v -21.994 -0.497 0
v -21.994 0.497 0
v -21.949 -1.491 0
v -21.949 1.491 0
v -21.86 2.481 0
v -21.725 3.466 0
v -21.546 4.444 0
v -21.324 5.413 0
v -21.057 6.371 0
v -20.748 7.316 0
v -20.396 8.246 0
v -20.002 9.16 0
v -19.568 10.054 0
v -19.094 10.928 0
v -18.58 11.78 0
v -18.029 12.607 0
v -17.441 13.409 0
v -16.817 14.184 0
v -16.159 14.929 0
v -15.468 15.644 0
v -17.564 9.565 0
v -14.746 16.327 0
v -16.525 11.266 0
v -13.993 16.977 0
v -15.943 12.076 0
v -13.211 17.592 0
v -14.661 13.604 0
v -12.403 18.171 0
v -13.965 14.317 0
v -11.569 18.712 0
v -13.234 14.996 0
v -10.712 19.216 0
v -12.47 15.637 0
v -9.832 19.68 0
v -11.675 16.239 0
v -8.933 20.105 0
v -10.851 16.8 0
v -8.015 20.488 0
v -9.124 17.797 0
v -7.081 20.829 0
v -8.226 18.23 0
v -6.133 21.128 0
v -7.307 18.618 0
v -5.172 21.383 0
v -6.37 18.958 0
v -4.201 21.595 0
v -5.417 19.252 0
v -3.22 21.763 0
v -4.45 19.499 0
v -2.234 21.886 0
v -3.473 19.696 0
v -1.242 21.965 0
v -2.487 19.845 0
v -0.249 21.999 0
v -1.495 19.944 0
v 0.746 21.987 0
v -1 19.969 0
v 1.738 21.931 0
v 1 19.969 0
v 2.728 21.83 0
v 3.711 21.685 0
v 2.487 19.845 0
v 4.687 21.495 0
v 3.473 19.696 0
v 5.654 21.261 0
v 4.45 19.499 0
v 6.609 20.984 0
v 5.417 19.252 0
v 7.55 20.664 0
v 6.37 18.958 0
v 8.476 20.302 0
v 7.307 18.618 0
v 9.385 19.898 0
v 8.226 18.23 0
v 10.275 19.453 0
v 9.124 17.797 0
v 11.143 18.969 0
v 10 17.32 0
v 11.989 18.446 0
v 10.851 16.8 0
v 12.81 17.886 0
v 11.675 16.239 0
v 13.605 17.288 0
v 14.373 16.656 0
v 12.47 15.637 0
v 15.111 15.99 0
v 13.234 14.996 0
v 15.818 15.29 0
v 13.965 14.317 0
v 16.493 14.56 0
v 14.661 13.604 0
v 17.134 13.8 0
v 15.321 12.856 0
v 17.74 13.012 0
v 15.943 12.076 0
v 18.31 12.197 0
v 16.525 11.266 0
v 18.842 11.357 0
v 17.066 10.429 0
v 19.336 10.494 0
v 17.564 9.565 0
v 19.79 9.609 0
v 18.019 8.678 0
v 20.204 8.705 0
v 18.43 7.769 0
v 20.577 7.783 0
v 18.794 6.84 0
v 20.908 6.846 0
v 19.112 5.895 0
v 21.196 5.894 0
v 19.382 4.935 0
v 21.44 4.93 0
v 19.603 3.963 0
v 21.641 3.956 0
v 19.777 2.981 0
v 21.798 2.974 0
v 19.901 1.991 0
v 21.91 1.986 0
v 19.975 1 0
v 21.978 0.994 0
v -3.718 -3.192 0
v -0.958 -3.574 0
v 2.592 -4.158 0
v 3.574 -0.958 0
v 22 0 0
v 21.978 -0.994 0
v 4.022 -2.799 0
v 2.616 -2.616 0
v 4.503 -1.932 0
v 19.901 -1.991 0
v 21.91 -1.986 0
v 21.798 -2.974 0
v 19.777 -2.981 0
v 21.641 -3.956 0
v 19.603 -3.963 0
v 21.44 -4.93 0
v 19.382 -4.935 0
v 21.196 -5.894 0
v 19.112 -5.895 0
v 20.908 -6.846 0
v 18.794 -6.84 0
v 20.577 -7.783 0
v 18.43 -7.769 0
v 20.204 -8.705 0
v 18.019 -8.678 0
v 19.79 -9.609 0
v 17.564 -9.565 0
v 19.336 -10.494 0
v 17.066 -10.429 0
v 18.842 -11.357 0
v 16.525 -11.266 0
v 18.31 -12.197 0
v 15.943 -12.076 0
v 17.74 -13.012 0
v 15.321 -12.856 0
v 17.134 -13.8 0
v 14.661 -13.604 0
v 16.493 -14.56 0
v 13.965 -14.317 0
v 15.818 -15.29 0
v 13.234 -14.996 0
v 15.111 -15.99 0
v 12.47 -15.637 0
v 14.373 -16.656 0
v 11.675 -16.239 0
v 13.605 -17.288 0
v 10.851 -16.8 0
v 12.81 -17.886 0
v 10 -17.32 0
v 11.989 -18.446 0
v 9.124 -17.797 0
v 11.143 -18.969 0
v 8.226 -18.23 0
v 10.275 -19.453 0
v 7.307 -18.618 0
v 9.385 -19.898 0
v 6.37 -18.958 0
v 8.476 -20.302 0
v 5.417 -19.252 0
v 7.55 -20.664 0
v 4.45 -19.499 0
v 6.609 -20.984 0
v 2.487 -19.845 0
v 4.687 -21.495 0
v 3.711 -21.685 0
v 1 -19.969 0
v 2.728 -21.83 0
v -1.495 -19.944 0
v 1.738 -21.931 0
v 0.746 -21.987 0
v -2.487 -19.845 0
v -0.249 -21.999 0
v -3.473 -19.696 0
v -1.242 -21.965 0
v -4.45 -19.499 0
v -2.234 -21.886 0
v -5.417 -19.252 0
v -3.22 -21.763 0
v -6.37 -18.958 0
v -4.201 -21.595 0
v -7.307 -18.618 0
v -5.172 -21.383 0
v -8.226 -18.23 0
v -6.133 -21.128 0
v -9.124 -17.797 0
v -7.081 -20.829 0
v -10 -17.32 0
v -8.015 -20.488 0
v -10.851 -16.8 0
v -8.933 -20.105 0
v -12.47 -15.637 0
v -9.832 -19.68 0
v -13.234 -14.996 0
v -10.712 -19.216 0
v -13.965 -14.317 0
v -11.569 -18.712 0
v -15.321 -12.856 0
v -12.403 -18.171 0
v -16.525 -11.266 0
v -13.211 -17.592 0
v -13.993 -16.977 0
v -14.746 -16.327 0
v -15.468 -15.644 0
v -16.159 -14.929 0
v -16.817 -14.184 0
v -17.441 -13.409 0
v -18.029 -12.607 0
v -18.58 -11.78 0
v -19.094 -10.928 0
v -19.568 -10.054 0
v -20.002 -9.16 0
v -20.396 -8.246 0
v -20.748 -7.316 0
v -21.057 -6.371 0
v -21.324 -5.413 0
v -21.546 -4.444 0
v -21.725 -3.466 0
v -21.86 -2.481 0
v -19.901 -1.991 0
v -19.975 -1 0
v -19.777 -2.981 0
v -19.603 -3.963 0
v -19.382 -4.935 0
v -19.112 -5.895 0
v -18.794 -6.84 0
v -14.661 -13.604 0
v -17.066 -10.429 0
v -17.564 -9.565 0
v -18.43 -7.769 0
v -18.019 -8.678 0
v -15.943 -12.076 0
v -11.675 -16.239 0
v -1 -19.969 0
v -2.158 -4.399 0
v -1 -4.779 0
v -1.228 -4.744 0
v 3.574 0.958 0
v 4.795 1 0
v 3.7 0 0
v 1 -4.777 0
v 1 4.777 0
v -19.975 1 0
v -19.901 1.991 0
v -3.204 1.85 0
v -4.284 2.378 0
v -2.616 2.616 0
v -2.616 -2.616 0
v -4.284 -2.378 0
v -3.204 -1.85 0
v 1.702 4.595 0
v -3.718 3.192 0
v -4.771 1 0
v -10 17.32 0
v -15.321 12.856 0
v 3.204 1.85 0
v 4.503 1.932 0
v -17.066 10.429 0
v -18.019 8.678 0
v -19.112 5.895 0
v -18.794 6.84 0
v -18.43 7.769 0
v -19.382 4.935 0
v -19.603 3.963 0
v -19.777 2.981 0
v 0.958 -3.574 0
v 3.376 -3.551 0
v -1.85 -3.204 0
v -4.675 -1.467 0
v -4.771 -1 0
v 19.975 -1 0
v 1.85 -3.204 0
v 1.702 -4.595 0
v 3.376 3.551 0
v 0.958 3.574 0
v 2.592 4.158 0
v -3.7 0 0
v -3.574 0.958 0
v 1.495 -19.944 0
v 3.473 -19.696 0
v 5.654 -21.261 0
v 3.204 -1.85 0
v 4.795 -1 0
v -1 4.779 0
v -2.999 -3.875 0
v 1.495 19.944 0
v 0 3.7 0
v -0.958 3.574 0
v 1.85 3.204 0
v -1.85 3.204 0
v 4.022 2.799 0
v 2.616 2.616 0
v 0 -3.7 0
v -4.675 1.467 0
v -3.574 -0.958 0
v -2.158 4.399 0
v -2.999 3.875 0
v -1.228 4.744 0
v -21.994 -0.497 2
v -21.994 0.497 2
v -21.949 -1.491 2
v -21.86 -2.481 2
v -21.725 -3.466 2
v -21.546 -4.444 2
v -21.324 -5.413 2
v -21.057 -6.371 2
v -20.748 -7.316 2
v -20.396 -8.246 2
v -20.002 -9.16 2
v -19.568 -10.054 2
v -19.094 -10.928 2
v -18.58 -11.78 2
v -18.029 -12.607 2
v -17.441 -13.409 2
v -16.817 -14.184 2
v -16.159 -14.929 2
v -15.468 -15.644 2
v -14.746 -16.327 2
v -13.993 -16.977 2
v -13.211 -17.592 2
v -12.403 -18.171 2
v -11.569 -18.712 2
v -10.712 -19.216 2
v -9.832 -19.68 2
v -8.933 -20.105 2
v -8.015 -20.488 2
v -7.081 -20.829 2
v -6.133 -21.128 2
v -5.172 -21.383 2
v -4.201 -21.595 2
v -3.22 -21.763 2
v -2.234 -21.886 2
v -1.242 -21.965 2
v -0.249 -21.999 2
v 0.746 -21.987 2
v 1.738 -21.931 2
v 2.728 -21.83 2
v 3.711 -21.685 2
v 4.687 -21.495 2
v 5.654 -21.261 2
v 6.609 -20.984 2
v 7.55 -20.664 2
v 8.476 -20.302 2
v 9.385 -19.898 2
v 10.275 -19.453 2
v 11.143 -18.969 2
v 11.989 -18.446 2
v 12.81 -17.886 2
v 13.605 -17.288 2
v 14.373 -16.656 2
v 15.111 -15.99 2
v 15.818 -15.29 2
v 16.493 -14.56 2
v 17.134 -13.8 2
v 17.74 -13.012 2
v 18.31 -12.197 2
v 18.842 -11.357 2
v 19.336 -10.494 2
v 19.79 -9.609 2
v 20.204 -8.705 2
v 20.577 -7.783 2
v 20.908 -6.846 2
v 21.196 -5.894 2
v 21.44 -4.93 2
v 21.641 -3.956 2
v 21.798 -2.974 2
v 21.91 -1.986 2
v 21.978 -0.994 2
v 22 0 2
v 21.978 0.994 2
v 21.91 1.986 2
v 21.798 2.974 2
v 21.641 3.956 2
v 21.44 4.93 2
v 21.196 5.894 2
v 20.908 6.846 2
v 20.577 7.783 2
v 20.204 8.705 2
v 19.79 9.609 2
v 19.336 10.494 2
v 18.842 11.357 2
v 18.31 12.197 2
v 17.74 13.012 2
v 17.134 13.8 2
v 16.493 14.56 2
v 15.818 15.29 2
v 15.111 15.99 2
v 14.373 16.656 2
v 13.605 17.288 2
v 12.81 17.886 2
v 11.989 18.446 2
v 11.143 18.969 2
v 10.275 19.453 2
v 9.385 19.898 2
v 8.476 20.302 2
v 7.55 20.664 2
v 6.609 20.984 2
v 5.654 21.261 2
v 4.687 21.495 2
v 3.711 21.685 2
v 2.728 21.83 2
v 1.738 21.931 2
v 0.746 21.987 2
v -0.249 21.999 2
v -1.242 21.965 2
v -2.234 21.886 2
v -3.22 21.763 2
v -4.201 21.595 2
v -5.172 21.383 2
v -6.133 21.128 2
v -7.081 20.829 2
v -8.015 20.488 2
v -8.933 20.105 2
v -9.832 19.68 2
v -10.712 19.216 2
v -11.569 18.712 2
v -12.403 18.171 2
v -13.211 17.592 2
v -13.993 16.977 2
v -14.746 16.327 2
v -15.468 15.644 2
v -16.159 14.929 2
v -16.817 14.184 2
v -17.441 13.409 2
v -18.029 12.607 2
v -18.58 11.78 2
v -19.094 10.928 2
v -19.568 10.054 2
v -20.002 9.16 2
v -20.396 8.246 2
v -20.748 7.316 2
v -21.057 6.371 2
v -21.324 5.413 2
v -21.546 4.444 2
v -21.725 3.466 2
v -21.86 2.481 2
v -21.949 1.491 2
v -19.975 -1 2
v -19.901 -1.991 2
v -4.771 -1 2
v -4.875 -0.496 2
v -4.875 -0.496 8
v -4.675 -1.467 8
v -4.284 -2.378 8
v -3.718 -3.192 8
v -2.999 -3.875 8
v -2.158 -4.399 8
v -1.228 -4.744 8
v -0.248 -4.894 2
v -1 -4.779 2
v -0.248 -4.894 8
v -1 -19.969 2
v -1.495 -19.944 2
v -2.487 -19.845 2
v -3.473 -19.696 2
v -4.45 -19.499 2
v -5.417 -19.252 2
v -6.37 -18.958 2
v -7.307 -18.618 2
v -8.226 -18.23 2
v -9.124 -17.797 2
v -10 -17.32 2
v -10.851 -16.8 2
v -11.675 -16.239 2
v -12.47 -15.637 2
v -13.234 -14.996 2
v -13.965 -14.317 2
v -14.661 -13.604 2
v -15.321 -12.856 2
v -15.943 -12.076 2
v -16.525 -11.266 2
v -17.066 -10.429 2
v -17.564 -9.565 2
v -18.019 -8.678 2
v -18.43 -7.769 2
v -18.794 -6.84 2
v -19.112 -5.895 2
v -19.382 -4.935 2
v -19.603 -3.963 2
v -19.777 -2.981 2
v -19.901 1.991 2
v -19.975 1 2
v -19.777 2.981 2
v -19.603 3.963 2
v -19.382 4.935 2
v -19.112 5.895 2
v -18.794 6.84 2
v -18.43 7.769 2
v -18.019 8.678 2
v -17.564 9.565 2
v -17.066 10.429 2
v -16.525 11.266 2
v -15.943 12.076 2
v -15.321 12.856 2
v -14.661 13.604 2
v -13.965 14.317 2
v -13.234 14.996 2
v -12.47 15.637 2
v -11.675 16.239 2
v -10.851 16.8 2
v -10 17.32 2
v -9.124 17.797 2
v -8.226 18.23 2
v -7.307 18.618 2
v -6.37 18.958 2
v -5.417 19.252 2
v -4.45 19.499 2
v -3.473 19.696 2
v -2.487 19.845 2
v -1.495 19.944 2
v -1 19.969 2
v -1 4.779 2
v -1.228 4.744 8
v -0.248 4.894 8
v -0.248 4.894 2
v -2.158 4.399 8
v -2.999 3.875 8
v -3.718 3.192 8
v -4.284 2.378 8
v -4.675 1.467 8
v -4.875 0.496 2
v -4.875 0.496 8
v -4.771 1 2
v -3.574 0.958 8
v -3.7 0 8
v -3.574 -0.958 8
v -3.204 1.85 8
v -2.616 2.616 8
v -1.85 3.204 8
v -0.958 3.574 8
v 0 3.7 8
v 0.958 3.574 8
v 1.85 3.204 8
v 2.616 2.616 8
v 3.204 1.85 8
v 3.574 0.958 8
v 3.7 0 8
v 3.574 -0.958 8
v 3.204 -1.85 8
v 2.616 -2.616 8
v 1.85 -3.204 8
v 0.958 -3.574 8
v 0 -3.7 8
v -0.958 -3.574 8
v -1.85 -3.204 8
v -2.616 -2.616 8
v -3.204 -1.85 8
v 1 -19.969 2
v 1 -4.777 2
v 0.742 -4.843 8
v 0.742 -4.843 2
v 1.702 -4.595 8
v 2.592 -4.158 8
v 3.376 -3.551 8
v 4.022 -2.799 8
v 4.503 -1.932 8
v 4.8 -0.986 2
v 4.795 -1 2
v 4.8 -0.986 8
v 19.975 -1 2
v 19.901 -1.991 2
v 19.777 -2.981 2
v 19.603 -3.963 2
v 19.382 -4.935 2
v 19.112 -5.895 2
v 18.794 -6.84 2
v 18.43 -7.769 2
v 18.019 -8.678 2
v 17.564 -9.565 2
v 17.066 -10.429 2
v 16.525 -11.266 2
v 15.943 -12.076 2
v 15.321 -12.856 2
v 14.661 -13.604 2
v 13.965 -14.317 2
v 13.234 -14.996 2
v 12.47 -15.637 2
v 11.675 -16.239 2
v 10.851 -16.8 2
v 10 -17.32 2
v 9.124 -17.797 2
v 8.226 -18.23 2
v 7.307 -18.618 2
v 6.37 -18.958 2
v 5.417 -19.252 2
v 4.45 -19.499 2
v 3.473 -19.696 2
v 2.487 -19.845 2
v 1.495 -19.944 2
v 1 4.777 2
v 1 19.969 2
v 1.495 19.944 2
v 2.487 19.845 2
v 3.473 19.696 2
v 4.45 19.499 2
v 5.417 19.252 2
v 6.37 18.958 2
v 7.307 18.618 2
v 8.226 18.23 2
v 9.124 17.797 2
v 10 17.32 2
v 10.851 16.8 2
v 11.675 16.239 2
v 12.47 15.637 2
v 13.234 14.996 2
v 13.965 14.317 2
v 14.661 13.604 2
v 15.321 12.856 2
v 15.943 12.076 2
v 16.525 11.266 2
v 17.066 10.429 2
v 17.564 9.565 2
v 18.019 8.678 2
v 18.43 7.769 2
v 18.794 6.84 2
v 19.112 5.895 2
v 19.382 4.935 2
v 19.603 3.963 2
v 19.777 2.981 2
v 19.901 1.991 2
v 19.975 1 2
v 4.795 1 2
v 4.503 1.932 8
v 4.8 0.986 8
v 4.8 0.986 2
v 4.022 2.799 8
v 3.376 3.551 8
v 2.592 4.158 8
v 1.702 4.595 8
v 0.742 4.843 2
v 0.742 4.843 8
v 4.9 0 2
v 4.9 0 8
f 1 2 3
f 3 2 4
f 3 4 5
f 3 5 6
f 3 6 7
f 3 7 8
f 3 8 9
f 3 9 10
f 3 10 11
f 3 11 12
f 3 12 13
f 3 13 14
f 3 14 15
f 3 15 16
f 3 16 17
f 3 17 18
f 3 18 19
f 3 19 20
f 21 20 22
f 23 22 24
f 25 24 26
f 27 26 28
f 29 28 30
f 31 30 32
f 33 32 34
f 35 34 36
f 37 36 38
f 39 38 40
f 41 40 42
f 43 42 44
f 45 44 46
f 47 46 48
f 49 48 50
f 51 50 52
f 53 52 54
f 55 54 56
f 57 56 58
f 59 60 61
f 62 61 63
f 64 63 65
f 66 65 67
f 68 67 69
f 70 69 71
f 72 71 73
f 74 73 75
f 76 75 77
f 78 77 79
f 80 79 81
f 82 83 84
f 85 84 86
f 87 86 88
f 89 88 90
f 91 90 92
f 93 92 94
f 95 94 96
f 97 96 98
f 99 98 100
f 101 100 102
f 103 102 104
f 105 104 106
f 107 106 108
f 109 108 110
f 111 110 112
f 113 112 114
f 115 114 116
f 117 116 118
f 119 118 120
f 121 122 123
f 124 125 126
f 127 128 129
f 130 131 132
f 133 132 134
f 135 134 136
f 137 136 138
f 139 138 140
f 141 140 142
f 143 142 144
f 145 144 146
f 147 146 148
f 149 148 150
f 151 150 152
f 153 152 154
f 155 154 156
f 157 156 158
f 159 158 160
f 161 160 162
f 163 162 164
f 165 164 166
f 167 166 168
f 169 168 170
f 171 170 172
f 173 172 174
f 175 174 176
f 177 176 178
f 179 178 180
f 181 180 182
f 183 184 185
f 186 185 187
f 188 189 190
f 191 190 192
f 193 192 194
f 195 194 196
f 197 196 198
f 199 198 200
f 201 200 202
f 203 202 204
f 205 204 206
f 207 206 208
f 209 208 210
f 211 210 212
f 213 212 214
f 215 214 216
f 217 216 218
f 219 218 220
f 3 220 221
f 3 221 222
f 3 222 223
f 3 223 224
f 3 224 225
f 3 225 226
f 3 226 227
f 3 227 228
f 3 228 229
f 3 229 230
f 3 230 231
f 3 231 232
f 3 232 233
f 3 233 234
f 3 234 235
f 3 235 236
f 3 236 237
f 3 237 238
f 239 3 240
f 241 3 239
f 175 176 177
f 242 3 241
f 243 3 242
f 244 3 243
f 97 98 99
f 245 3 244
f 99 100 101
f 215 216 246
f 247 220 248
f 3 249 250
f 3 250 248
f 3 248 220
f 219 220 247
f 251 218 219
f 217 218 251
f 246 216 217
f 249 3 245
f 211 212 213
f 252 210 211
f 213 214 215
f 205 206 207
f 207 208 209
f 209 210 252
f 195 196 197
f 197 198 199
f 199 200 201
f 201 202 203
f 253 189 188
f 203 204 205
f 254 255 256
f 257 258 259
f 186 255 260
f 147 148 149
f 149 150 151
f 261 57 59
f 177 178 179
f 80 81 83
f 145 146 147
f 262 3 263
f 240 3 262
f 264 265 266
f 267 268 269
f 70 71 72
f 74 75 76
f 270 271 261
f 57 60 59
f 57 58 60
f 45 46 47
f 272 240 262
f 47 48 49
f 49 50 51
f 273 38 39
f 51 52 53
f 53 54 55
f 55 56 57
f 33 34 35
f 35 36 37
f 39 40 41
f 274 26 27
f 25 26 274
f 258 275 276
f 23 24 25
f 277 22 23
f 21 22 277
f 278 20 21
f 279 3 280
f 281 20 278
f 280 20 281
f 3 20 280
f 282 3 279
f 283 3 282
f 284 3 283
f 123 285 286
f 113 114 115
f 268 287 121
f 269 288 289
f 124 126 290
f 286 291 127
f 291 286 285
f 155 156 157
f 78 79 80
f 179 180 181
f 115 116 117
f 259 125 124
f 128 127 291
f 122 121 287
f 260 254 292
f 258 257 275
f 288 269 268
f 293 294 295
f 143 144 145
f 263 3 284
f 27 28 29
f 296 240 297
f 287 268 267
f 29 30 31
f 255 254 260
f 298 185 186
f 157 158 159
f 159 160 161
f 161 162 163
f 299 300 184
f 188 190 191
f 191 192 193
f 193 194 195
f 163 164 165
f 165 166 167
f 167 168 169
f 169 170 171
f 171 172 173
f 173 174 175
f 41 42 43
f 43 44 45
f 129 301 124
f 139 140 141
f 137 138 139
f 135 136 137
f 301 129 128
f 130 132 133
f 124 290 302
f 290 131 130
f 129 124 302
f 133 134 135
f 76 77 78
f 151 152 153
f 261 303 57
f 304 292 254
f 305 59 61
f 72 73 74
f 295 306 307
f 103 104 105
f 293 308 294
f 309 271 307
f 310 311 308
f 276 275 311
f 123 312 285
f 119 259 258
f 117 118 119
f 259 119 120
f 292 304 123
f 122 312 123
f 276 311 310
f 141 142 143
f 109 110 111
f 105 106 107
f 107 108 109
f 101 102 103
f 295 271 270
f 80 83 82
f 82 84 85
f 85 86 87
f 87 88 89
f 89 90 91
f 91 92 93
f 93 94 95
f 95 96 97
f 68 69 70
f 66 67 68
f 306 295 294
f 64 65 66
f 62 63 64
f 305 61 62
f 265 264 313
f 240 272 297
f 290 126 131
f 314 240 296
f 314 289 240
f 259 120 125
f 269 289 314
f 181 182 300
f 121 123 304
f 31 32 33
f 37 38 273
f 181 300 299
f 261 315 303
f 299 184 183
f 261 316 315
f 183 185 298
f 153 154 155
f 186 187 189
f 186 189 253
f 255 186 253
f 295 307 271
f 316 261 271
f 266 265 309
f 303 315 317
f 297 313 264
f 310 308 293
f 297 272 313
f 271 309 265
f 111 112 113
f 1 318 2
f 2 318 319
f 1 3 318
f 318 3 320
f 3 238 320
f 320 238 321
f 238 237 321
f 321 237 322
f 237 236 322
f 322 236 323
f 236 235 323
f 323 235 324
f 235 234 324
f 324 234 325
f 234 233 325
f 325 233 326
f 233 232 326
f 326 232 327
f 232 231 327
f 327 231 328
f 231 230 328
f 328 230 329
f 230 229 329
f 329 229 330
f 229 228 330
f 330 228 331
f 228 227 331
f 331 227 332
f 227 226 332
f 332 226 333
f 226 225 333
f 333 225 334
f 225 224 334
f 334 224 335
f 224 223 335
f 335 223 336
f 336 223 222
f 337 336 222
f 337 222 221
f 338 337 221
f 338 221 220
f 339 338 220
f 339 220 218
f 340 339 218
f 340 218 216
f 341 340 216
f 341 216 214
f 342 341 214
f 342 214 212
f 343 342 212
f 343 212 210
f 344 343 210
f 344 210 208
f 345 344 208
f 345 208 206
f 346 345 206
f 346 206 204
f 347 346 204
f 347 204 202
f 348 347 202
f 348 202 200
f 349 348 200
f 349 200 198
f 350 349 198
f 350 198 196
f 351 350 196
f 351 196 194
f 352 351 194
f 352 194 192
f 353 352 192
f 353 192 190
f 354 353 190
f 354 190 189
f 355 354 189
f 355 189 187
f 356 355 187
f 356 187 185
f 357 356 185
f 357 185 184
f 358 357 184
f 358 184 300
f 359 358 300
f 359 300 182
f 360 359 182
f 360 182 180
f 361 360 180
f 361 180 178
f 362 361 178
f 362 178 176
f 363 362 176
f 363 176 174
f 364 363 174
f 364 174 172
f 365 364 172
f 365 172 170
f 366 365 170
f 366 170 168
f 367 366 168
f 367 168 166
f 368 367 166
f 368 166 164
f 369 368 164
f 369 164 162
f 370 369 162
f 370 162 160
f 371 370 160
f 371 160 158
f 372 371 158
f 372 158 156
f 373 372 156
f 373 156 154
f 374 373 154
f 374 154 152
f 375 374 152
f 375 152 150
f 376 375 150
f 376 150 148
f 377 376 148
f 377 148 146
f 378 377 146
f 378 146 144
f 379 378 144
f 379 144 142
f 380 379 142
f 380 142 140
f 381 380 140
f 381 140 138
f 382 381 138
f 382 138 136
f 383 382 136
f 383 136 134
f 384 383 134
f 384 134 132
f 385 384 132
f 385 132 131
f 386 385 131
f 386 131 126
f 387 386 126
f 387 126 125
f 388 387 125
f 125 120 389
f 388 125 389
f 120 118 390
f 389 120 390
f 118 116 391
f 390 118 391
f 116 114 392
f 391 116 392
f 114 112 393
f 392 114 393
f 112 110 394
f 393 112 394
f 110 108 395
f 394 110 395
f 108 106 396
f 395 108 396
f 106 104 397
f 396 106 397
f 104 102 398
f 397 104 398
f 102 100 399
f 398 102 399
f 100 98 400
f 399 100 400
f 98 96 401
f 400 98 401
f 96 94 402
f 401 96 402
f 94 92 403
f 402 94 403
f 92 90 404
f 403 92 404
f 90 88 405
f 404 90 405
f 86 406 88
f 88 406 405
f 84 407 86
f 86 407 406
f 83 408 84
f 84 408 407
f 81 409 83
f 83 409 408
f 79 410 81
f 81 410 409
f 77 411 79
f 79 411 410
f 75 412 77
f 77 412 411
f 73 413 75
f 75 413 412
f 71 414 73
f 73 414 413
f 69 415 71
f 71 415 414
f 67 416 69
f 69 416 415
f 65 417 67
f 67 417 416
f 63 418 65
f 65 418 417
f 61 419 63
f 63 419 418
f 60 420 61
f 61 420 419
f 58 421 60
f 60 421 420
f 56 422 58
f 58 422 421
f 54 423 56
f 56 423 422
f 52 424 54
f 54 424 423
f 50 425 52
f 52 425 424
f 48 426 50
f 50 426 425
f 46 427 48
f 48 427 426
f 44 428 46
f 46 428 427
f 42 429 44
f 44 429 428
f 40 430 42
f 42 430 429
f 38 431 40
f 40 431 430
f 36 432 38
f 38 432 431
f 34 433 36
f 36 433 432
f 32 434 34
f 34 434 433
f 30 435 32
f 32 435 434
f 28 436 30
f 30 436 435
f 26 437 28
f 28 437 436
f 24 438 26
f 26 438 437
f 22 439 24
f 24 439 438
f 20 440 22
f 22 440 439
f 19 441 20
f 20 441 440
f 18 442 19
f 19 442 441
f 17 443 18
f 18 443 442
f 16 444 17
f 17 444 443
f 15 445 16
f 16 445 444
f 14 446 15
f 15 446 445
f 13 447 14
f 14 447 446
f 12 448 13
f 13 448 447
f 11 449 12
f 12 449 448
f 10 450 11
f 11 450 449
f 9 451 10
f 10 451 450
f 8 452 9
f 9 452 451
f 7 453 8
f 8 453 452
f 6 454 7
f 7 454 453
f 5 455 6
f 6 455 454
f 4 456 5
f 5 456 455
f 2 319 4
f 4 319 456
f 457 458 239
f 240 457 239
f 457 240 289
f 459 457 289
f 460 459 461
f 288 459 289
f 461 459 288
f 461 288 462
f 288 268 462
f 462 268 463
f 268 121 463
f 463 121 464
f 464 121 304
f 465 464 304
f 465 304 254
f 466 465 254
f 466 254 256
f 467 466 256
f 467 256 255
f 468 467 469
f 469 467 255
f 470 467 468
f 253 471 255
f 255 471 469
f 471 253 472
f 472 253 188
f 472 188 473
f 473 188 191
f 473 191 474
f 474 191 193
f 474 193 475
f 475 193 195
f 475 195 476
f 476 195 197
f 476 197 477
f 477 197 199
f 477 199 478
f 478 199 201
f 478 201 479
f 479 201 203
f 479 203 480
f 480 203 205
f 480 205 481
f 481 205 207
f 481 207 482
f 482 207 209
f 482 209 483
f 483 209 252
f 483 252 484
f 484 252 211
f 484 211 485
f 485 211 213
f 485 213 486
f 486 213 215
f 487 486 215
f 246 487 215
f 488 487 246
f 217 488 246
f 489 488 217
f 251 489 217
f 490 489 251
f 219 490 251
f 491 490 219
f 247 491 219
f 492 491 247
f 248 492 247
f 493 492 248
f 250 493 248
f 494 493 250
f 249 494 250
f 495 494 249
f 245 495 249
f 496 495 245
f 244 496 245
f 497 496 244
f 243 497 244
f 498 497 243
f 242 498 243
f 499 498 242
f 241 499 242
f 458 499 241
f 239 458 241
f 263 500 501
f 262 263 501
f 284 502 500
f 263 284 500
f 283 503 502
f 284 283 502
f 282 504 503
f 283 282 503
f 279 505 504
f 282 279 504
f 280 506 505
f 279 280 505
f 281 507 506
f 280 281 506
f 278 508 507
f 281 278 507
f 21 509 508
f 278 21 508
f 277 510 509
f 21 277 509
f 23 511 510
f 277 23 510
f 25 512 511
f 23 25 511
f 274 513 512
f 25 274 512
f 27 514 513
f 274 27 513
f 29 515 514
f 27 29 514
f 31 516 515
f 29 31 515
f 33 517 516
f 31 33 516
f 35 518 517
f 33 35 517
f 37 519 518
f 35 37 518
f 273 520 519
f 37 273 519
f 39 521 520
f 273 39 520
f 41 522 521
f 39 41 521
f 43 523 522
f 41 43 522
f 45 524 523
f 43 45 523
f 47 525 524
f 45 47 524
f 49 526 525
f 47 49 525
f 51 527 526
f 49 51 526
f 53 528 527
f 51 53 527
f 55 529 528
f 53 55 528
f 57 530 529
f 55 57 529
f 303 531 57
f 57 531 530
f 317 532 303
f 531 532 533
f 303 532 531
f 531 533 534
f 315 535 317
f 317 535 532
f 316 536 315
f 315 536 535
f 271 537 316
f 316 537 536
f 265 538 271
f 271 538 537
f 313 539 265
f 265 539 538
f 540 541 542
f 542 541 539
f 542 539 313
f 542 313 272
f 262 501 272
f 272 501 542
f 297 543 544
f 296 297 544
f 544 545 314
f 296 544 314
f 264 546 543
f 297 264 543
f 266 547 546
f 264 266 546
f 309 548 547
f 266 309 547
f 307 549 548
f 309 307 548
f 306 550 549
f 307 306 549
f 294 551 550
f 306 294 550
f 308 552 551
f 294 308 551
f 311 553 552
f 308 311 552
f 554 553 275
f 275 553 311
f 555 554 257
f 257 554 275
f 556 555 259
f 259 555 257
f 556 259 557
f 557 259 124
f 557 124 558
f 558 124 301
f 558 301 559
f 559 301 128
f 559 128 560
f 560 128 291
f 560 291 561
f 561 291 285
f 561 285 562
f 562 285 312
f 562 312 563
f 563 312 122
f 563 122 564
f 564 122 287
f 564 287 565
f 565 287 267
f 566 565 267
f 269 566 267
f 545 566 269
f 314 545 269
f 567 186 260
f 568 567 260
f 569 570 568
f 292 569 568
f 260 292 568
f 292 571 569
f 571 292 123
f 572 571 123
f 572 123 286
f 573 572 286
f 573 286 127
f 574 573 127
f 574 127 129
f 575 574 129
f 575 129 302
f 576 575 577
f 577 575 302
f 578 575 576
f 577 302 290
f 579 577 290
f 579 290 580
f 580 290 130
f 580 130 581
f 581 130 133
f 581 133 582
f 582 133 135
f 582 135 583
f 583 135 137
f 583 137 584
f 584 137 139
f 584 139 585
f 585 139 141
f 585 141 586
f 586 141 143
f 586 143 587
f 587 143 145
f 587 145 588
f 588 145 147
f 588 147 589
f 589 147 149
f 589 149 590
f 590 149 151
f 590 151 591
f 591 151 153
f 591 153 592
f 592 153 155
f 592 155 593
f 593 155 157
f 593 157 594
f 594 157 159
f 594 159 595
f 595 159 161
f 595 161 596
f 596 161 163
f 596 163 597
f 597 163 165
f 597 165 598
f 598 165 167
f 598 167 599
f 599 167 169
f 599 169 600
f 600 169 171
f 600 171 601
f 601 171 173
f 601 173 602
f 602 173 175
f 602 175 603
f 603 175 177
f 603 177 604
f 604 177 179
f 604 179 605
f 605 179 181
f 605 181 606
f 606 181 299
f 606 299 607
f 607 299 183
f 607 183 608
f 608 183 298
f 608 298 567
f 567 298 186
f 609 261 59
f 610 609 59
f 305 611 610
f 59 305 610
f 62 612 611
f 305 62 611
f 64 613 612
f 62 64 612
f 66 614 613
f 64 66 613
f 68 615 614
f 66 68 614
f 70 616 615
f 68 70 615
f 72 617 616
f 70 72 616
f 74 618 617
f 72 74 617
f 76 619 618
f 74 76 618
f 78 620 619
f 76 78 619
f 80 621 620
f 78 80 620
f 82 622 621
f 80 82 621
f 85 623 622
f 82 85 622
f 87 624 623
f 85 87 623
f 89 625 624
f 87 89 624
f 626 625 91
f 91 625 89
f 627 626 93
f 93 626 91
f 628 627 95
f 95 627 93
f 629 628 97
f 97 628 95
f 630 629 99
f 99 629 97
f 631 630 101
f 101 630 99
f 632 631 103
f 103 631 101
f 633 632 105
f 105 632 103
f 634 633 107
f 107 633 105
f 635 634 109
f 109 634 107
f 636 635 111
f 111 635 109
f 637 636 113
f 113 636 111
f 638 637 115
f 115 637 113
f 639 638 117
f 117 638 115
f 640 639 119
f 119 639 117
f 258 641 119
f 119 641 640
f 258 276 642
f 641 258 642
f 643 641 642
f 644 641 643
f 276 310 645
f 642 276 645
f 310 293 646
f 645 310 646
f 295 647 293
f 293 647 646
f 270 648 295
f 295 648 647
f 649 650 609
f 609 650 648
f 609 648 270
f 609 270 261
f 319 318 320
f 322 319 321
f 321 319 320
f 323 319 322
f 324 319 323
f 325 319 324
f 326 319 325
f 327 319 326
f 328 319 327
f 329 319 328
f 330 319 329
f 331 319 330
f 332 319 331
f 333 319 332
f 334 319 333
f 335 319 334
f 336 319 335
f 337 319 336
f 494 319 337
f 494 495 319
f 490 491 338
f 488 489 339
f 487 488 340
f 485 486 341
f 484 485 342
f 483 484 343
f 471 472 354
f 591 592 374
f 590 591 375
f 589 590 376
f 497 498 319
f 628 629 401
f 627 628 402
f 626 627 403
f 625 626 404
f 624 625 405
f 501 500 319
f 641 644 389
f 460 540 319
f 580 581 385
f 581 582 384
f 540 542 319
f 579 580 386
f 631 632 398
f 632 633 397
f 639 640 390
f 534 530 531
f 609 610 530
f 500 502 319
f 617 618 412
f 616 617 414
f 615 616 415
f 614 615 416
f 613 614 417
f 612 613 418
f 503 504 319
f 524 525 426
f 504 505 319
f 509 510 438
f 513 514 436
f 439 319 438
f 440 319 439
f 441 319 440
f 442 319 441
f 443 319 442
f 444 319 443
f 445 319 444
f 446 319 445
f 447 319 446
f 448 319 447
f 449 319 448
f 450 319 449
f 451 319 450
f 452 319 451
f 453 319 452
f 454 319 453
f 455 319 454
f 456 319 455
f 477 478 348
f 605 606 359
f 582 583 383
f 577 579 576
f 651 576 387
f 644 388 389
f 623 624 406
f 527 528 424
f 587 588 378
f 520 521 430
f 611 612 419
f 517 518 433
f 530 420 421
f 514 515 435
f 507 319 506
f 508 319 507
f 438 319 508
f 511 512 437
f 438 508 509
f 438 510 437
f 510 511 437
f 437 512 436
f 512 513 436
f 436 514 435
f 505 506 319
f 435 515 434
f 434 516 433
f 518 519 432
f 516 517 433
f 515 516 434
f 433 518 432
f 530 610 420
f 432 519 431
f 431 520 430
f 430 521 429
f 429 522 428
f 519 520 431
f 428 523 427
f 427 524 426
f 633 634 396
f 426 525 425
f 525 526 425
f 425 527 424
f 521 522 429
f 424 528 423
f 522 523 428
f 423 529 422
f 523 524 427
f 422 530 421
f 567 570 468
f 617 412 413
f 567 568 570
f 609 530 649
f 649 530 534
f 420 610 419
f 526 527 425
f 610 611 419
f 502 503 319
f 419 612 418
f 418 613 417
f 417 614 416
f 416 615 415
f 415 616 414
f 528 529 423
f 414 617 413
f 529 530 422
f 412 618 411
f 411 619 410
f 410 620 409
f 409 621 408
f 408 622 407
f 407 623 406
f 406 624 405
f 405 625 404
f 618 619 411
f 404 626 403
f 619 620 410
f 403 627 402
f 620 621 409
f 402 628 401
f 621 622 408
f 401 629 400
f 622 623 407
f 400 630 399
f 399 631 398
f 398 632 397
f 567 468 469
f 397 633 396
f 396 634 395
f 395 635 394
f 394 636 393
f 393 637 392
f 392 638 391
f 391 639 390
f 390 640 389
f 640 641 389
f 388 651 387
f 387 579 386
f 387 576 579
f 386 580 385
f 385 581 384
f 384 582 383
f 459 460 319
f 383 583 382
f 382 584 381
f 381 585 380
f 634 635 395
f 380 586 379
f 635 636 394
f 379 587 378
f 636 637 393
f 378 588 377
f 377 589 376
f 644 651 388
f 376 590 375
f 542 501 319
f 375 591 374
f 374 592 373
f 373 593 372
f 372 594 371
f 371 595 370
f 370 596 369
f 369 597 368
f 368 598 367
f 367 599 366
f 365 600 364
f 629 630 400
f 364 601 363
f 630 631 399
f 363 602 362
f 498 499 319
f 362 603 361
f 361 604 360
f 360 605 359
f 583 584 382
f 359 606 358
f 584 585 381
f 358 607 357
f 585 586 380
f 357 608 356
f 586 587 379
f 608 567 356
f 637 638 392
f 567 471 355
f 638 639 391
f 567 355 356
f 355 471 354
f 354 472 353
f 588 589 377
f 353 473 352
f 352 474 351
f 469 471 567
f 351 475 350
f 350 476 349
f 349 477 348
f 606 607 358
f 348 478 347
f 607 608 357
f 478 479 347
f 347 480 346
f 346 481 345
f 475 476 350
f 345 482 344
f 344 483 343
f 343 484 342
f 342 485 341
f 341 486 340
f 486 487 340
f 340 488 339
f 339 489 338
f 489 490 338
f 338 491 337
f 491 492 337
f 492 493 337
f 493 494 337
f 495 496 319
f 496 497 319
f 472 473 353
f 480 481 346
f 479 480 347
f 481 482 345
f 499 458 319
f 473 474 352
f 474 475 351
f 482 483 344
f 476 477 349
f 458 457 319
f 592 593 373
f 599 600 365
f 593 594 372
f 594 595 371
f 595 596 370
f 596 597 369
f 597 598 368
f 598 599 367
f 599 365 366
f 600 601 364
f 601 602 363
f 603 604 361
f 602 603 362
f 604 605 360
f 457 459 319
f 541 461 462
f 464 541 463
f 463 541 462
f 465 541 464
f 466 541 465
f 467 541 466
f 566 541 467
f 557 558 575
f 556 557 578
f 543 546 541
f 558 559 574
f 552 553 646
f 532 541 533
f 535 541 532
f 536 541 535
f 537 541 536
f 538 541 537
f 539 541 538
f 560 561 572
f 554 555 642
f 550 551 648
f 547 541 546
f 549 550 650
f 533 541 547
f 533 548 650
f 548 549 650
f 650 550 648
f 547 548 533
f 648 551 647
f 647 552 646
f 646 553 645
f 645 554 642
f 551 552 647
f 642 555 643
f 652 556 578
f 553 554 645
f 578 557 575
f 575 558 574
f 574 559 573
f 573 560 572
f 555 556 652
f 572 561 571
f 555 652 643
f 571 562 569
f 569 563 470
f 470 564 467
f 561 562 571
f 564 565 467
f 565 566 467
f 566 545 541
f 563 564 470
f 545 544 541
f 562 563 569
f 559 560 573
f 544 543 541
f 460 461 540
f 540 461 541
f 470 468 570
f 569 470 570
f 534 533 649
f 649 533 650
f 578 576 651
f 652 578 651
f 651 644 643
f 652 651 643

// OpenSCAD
$fa = 1;
$fs = 1;

rint1 = 3.7;
rint2 = 4.9;
rext2 = 22;
rext1 = rext2-2;

mint = rint1 + (rint2-rint1)/2;
mext = rext1 + (rext2-rext1)/2;
rdif =  mext - mint;

hext = 2;
hint = 8;

difference() {
	cylinder(hext, rext2, rext2);
	cylinder(hext, rext1, rext1);
}

difference() {
	cylinder(hint, rint2, rint2);
	cylinder(hint, rint1, rint1);
}

for(i=[0:90:270]) {
	rotate(i, [0,0,1]) {
		translate([mint + rdif/2, 0, hext/2]) {
			cube([rdif,2,hext], true);
		}
	}
}
